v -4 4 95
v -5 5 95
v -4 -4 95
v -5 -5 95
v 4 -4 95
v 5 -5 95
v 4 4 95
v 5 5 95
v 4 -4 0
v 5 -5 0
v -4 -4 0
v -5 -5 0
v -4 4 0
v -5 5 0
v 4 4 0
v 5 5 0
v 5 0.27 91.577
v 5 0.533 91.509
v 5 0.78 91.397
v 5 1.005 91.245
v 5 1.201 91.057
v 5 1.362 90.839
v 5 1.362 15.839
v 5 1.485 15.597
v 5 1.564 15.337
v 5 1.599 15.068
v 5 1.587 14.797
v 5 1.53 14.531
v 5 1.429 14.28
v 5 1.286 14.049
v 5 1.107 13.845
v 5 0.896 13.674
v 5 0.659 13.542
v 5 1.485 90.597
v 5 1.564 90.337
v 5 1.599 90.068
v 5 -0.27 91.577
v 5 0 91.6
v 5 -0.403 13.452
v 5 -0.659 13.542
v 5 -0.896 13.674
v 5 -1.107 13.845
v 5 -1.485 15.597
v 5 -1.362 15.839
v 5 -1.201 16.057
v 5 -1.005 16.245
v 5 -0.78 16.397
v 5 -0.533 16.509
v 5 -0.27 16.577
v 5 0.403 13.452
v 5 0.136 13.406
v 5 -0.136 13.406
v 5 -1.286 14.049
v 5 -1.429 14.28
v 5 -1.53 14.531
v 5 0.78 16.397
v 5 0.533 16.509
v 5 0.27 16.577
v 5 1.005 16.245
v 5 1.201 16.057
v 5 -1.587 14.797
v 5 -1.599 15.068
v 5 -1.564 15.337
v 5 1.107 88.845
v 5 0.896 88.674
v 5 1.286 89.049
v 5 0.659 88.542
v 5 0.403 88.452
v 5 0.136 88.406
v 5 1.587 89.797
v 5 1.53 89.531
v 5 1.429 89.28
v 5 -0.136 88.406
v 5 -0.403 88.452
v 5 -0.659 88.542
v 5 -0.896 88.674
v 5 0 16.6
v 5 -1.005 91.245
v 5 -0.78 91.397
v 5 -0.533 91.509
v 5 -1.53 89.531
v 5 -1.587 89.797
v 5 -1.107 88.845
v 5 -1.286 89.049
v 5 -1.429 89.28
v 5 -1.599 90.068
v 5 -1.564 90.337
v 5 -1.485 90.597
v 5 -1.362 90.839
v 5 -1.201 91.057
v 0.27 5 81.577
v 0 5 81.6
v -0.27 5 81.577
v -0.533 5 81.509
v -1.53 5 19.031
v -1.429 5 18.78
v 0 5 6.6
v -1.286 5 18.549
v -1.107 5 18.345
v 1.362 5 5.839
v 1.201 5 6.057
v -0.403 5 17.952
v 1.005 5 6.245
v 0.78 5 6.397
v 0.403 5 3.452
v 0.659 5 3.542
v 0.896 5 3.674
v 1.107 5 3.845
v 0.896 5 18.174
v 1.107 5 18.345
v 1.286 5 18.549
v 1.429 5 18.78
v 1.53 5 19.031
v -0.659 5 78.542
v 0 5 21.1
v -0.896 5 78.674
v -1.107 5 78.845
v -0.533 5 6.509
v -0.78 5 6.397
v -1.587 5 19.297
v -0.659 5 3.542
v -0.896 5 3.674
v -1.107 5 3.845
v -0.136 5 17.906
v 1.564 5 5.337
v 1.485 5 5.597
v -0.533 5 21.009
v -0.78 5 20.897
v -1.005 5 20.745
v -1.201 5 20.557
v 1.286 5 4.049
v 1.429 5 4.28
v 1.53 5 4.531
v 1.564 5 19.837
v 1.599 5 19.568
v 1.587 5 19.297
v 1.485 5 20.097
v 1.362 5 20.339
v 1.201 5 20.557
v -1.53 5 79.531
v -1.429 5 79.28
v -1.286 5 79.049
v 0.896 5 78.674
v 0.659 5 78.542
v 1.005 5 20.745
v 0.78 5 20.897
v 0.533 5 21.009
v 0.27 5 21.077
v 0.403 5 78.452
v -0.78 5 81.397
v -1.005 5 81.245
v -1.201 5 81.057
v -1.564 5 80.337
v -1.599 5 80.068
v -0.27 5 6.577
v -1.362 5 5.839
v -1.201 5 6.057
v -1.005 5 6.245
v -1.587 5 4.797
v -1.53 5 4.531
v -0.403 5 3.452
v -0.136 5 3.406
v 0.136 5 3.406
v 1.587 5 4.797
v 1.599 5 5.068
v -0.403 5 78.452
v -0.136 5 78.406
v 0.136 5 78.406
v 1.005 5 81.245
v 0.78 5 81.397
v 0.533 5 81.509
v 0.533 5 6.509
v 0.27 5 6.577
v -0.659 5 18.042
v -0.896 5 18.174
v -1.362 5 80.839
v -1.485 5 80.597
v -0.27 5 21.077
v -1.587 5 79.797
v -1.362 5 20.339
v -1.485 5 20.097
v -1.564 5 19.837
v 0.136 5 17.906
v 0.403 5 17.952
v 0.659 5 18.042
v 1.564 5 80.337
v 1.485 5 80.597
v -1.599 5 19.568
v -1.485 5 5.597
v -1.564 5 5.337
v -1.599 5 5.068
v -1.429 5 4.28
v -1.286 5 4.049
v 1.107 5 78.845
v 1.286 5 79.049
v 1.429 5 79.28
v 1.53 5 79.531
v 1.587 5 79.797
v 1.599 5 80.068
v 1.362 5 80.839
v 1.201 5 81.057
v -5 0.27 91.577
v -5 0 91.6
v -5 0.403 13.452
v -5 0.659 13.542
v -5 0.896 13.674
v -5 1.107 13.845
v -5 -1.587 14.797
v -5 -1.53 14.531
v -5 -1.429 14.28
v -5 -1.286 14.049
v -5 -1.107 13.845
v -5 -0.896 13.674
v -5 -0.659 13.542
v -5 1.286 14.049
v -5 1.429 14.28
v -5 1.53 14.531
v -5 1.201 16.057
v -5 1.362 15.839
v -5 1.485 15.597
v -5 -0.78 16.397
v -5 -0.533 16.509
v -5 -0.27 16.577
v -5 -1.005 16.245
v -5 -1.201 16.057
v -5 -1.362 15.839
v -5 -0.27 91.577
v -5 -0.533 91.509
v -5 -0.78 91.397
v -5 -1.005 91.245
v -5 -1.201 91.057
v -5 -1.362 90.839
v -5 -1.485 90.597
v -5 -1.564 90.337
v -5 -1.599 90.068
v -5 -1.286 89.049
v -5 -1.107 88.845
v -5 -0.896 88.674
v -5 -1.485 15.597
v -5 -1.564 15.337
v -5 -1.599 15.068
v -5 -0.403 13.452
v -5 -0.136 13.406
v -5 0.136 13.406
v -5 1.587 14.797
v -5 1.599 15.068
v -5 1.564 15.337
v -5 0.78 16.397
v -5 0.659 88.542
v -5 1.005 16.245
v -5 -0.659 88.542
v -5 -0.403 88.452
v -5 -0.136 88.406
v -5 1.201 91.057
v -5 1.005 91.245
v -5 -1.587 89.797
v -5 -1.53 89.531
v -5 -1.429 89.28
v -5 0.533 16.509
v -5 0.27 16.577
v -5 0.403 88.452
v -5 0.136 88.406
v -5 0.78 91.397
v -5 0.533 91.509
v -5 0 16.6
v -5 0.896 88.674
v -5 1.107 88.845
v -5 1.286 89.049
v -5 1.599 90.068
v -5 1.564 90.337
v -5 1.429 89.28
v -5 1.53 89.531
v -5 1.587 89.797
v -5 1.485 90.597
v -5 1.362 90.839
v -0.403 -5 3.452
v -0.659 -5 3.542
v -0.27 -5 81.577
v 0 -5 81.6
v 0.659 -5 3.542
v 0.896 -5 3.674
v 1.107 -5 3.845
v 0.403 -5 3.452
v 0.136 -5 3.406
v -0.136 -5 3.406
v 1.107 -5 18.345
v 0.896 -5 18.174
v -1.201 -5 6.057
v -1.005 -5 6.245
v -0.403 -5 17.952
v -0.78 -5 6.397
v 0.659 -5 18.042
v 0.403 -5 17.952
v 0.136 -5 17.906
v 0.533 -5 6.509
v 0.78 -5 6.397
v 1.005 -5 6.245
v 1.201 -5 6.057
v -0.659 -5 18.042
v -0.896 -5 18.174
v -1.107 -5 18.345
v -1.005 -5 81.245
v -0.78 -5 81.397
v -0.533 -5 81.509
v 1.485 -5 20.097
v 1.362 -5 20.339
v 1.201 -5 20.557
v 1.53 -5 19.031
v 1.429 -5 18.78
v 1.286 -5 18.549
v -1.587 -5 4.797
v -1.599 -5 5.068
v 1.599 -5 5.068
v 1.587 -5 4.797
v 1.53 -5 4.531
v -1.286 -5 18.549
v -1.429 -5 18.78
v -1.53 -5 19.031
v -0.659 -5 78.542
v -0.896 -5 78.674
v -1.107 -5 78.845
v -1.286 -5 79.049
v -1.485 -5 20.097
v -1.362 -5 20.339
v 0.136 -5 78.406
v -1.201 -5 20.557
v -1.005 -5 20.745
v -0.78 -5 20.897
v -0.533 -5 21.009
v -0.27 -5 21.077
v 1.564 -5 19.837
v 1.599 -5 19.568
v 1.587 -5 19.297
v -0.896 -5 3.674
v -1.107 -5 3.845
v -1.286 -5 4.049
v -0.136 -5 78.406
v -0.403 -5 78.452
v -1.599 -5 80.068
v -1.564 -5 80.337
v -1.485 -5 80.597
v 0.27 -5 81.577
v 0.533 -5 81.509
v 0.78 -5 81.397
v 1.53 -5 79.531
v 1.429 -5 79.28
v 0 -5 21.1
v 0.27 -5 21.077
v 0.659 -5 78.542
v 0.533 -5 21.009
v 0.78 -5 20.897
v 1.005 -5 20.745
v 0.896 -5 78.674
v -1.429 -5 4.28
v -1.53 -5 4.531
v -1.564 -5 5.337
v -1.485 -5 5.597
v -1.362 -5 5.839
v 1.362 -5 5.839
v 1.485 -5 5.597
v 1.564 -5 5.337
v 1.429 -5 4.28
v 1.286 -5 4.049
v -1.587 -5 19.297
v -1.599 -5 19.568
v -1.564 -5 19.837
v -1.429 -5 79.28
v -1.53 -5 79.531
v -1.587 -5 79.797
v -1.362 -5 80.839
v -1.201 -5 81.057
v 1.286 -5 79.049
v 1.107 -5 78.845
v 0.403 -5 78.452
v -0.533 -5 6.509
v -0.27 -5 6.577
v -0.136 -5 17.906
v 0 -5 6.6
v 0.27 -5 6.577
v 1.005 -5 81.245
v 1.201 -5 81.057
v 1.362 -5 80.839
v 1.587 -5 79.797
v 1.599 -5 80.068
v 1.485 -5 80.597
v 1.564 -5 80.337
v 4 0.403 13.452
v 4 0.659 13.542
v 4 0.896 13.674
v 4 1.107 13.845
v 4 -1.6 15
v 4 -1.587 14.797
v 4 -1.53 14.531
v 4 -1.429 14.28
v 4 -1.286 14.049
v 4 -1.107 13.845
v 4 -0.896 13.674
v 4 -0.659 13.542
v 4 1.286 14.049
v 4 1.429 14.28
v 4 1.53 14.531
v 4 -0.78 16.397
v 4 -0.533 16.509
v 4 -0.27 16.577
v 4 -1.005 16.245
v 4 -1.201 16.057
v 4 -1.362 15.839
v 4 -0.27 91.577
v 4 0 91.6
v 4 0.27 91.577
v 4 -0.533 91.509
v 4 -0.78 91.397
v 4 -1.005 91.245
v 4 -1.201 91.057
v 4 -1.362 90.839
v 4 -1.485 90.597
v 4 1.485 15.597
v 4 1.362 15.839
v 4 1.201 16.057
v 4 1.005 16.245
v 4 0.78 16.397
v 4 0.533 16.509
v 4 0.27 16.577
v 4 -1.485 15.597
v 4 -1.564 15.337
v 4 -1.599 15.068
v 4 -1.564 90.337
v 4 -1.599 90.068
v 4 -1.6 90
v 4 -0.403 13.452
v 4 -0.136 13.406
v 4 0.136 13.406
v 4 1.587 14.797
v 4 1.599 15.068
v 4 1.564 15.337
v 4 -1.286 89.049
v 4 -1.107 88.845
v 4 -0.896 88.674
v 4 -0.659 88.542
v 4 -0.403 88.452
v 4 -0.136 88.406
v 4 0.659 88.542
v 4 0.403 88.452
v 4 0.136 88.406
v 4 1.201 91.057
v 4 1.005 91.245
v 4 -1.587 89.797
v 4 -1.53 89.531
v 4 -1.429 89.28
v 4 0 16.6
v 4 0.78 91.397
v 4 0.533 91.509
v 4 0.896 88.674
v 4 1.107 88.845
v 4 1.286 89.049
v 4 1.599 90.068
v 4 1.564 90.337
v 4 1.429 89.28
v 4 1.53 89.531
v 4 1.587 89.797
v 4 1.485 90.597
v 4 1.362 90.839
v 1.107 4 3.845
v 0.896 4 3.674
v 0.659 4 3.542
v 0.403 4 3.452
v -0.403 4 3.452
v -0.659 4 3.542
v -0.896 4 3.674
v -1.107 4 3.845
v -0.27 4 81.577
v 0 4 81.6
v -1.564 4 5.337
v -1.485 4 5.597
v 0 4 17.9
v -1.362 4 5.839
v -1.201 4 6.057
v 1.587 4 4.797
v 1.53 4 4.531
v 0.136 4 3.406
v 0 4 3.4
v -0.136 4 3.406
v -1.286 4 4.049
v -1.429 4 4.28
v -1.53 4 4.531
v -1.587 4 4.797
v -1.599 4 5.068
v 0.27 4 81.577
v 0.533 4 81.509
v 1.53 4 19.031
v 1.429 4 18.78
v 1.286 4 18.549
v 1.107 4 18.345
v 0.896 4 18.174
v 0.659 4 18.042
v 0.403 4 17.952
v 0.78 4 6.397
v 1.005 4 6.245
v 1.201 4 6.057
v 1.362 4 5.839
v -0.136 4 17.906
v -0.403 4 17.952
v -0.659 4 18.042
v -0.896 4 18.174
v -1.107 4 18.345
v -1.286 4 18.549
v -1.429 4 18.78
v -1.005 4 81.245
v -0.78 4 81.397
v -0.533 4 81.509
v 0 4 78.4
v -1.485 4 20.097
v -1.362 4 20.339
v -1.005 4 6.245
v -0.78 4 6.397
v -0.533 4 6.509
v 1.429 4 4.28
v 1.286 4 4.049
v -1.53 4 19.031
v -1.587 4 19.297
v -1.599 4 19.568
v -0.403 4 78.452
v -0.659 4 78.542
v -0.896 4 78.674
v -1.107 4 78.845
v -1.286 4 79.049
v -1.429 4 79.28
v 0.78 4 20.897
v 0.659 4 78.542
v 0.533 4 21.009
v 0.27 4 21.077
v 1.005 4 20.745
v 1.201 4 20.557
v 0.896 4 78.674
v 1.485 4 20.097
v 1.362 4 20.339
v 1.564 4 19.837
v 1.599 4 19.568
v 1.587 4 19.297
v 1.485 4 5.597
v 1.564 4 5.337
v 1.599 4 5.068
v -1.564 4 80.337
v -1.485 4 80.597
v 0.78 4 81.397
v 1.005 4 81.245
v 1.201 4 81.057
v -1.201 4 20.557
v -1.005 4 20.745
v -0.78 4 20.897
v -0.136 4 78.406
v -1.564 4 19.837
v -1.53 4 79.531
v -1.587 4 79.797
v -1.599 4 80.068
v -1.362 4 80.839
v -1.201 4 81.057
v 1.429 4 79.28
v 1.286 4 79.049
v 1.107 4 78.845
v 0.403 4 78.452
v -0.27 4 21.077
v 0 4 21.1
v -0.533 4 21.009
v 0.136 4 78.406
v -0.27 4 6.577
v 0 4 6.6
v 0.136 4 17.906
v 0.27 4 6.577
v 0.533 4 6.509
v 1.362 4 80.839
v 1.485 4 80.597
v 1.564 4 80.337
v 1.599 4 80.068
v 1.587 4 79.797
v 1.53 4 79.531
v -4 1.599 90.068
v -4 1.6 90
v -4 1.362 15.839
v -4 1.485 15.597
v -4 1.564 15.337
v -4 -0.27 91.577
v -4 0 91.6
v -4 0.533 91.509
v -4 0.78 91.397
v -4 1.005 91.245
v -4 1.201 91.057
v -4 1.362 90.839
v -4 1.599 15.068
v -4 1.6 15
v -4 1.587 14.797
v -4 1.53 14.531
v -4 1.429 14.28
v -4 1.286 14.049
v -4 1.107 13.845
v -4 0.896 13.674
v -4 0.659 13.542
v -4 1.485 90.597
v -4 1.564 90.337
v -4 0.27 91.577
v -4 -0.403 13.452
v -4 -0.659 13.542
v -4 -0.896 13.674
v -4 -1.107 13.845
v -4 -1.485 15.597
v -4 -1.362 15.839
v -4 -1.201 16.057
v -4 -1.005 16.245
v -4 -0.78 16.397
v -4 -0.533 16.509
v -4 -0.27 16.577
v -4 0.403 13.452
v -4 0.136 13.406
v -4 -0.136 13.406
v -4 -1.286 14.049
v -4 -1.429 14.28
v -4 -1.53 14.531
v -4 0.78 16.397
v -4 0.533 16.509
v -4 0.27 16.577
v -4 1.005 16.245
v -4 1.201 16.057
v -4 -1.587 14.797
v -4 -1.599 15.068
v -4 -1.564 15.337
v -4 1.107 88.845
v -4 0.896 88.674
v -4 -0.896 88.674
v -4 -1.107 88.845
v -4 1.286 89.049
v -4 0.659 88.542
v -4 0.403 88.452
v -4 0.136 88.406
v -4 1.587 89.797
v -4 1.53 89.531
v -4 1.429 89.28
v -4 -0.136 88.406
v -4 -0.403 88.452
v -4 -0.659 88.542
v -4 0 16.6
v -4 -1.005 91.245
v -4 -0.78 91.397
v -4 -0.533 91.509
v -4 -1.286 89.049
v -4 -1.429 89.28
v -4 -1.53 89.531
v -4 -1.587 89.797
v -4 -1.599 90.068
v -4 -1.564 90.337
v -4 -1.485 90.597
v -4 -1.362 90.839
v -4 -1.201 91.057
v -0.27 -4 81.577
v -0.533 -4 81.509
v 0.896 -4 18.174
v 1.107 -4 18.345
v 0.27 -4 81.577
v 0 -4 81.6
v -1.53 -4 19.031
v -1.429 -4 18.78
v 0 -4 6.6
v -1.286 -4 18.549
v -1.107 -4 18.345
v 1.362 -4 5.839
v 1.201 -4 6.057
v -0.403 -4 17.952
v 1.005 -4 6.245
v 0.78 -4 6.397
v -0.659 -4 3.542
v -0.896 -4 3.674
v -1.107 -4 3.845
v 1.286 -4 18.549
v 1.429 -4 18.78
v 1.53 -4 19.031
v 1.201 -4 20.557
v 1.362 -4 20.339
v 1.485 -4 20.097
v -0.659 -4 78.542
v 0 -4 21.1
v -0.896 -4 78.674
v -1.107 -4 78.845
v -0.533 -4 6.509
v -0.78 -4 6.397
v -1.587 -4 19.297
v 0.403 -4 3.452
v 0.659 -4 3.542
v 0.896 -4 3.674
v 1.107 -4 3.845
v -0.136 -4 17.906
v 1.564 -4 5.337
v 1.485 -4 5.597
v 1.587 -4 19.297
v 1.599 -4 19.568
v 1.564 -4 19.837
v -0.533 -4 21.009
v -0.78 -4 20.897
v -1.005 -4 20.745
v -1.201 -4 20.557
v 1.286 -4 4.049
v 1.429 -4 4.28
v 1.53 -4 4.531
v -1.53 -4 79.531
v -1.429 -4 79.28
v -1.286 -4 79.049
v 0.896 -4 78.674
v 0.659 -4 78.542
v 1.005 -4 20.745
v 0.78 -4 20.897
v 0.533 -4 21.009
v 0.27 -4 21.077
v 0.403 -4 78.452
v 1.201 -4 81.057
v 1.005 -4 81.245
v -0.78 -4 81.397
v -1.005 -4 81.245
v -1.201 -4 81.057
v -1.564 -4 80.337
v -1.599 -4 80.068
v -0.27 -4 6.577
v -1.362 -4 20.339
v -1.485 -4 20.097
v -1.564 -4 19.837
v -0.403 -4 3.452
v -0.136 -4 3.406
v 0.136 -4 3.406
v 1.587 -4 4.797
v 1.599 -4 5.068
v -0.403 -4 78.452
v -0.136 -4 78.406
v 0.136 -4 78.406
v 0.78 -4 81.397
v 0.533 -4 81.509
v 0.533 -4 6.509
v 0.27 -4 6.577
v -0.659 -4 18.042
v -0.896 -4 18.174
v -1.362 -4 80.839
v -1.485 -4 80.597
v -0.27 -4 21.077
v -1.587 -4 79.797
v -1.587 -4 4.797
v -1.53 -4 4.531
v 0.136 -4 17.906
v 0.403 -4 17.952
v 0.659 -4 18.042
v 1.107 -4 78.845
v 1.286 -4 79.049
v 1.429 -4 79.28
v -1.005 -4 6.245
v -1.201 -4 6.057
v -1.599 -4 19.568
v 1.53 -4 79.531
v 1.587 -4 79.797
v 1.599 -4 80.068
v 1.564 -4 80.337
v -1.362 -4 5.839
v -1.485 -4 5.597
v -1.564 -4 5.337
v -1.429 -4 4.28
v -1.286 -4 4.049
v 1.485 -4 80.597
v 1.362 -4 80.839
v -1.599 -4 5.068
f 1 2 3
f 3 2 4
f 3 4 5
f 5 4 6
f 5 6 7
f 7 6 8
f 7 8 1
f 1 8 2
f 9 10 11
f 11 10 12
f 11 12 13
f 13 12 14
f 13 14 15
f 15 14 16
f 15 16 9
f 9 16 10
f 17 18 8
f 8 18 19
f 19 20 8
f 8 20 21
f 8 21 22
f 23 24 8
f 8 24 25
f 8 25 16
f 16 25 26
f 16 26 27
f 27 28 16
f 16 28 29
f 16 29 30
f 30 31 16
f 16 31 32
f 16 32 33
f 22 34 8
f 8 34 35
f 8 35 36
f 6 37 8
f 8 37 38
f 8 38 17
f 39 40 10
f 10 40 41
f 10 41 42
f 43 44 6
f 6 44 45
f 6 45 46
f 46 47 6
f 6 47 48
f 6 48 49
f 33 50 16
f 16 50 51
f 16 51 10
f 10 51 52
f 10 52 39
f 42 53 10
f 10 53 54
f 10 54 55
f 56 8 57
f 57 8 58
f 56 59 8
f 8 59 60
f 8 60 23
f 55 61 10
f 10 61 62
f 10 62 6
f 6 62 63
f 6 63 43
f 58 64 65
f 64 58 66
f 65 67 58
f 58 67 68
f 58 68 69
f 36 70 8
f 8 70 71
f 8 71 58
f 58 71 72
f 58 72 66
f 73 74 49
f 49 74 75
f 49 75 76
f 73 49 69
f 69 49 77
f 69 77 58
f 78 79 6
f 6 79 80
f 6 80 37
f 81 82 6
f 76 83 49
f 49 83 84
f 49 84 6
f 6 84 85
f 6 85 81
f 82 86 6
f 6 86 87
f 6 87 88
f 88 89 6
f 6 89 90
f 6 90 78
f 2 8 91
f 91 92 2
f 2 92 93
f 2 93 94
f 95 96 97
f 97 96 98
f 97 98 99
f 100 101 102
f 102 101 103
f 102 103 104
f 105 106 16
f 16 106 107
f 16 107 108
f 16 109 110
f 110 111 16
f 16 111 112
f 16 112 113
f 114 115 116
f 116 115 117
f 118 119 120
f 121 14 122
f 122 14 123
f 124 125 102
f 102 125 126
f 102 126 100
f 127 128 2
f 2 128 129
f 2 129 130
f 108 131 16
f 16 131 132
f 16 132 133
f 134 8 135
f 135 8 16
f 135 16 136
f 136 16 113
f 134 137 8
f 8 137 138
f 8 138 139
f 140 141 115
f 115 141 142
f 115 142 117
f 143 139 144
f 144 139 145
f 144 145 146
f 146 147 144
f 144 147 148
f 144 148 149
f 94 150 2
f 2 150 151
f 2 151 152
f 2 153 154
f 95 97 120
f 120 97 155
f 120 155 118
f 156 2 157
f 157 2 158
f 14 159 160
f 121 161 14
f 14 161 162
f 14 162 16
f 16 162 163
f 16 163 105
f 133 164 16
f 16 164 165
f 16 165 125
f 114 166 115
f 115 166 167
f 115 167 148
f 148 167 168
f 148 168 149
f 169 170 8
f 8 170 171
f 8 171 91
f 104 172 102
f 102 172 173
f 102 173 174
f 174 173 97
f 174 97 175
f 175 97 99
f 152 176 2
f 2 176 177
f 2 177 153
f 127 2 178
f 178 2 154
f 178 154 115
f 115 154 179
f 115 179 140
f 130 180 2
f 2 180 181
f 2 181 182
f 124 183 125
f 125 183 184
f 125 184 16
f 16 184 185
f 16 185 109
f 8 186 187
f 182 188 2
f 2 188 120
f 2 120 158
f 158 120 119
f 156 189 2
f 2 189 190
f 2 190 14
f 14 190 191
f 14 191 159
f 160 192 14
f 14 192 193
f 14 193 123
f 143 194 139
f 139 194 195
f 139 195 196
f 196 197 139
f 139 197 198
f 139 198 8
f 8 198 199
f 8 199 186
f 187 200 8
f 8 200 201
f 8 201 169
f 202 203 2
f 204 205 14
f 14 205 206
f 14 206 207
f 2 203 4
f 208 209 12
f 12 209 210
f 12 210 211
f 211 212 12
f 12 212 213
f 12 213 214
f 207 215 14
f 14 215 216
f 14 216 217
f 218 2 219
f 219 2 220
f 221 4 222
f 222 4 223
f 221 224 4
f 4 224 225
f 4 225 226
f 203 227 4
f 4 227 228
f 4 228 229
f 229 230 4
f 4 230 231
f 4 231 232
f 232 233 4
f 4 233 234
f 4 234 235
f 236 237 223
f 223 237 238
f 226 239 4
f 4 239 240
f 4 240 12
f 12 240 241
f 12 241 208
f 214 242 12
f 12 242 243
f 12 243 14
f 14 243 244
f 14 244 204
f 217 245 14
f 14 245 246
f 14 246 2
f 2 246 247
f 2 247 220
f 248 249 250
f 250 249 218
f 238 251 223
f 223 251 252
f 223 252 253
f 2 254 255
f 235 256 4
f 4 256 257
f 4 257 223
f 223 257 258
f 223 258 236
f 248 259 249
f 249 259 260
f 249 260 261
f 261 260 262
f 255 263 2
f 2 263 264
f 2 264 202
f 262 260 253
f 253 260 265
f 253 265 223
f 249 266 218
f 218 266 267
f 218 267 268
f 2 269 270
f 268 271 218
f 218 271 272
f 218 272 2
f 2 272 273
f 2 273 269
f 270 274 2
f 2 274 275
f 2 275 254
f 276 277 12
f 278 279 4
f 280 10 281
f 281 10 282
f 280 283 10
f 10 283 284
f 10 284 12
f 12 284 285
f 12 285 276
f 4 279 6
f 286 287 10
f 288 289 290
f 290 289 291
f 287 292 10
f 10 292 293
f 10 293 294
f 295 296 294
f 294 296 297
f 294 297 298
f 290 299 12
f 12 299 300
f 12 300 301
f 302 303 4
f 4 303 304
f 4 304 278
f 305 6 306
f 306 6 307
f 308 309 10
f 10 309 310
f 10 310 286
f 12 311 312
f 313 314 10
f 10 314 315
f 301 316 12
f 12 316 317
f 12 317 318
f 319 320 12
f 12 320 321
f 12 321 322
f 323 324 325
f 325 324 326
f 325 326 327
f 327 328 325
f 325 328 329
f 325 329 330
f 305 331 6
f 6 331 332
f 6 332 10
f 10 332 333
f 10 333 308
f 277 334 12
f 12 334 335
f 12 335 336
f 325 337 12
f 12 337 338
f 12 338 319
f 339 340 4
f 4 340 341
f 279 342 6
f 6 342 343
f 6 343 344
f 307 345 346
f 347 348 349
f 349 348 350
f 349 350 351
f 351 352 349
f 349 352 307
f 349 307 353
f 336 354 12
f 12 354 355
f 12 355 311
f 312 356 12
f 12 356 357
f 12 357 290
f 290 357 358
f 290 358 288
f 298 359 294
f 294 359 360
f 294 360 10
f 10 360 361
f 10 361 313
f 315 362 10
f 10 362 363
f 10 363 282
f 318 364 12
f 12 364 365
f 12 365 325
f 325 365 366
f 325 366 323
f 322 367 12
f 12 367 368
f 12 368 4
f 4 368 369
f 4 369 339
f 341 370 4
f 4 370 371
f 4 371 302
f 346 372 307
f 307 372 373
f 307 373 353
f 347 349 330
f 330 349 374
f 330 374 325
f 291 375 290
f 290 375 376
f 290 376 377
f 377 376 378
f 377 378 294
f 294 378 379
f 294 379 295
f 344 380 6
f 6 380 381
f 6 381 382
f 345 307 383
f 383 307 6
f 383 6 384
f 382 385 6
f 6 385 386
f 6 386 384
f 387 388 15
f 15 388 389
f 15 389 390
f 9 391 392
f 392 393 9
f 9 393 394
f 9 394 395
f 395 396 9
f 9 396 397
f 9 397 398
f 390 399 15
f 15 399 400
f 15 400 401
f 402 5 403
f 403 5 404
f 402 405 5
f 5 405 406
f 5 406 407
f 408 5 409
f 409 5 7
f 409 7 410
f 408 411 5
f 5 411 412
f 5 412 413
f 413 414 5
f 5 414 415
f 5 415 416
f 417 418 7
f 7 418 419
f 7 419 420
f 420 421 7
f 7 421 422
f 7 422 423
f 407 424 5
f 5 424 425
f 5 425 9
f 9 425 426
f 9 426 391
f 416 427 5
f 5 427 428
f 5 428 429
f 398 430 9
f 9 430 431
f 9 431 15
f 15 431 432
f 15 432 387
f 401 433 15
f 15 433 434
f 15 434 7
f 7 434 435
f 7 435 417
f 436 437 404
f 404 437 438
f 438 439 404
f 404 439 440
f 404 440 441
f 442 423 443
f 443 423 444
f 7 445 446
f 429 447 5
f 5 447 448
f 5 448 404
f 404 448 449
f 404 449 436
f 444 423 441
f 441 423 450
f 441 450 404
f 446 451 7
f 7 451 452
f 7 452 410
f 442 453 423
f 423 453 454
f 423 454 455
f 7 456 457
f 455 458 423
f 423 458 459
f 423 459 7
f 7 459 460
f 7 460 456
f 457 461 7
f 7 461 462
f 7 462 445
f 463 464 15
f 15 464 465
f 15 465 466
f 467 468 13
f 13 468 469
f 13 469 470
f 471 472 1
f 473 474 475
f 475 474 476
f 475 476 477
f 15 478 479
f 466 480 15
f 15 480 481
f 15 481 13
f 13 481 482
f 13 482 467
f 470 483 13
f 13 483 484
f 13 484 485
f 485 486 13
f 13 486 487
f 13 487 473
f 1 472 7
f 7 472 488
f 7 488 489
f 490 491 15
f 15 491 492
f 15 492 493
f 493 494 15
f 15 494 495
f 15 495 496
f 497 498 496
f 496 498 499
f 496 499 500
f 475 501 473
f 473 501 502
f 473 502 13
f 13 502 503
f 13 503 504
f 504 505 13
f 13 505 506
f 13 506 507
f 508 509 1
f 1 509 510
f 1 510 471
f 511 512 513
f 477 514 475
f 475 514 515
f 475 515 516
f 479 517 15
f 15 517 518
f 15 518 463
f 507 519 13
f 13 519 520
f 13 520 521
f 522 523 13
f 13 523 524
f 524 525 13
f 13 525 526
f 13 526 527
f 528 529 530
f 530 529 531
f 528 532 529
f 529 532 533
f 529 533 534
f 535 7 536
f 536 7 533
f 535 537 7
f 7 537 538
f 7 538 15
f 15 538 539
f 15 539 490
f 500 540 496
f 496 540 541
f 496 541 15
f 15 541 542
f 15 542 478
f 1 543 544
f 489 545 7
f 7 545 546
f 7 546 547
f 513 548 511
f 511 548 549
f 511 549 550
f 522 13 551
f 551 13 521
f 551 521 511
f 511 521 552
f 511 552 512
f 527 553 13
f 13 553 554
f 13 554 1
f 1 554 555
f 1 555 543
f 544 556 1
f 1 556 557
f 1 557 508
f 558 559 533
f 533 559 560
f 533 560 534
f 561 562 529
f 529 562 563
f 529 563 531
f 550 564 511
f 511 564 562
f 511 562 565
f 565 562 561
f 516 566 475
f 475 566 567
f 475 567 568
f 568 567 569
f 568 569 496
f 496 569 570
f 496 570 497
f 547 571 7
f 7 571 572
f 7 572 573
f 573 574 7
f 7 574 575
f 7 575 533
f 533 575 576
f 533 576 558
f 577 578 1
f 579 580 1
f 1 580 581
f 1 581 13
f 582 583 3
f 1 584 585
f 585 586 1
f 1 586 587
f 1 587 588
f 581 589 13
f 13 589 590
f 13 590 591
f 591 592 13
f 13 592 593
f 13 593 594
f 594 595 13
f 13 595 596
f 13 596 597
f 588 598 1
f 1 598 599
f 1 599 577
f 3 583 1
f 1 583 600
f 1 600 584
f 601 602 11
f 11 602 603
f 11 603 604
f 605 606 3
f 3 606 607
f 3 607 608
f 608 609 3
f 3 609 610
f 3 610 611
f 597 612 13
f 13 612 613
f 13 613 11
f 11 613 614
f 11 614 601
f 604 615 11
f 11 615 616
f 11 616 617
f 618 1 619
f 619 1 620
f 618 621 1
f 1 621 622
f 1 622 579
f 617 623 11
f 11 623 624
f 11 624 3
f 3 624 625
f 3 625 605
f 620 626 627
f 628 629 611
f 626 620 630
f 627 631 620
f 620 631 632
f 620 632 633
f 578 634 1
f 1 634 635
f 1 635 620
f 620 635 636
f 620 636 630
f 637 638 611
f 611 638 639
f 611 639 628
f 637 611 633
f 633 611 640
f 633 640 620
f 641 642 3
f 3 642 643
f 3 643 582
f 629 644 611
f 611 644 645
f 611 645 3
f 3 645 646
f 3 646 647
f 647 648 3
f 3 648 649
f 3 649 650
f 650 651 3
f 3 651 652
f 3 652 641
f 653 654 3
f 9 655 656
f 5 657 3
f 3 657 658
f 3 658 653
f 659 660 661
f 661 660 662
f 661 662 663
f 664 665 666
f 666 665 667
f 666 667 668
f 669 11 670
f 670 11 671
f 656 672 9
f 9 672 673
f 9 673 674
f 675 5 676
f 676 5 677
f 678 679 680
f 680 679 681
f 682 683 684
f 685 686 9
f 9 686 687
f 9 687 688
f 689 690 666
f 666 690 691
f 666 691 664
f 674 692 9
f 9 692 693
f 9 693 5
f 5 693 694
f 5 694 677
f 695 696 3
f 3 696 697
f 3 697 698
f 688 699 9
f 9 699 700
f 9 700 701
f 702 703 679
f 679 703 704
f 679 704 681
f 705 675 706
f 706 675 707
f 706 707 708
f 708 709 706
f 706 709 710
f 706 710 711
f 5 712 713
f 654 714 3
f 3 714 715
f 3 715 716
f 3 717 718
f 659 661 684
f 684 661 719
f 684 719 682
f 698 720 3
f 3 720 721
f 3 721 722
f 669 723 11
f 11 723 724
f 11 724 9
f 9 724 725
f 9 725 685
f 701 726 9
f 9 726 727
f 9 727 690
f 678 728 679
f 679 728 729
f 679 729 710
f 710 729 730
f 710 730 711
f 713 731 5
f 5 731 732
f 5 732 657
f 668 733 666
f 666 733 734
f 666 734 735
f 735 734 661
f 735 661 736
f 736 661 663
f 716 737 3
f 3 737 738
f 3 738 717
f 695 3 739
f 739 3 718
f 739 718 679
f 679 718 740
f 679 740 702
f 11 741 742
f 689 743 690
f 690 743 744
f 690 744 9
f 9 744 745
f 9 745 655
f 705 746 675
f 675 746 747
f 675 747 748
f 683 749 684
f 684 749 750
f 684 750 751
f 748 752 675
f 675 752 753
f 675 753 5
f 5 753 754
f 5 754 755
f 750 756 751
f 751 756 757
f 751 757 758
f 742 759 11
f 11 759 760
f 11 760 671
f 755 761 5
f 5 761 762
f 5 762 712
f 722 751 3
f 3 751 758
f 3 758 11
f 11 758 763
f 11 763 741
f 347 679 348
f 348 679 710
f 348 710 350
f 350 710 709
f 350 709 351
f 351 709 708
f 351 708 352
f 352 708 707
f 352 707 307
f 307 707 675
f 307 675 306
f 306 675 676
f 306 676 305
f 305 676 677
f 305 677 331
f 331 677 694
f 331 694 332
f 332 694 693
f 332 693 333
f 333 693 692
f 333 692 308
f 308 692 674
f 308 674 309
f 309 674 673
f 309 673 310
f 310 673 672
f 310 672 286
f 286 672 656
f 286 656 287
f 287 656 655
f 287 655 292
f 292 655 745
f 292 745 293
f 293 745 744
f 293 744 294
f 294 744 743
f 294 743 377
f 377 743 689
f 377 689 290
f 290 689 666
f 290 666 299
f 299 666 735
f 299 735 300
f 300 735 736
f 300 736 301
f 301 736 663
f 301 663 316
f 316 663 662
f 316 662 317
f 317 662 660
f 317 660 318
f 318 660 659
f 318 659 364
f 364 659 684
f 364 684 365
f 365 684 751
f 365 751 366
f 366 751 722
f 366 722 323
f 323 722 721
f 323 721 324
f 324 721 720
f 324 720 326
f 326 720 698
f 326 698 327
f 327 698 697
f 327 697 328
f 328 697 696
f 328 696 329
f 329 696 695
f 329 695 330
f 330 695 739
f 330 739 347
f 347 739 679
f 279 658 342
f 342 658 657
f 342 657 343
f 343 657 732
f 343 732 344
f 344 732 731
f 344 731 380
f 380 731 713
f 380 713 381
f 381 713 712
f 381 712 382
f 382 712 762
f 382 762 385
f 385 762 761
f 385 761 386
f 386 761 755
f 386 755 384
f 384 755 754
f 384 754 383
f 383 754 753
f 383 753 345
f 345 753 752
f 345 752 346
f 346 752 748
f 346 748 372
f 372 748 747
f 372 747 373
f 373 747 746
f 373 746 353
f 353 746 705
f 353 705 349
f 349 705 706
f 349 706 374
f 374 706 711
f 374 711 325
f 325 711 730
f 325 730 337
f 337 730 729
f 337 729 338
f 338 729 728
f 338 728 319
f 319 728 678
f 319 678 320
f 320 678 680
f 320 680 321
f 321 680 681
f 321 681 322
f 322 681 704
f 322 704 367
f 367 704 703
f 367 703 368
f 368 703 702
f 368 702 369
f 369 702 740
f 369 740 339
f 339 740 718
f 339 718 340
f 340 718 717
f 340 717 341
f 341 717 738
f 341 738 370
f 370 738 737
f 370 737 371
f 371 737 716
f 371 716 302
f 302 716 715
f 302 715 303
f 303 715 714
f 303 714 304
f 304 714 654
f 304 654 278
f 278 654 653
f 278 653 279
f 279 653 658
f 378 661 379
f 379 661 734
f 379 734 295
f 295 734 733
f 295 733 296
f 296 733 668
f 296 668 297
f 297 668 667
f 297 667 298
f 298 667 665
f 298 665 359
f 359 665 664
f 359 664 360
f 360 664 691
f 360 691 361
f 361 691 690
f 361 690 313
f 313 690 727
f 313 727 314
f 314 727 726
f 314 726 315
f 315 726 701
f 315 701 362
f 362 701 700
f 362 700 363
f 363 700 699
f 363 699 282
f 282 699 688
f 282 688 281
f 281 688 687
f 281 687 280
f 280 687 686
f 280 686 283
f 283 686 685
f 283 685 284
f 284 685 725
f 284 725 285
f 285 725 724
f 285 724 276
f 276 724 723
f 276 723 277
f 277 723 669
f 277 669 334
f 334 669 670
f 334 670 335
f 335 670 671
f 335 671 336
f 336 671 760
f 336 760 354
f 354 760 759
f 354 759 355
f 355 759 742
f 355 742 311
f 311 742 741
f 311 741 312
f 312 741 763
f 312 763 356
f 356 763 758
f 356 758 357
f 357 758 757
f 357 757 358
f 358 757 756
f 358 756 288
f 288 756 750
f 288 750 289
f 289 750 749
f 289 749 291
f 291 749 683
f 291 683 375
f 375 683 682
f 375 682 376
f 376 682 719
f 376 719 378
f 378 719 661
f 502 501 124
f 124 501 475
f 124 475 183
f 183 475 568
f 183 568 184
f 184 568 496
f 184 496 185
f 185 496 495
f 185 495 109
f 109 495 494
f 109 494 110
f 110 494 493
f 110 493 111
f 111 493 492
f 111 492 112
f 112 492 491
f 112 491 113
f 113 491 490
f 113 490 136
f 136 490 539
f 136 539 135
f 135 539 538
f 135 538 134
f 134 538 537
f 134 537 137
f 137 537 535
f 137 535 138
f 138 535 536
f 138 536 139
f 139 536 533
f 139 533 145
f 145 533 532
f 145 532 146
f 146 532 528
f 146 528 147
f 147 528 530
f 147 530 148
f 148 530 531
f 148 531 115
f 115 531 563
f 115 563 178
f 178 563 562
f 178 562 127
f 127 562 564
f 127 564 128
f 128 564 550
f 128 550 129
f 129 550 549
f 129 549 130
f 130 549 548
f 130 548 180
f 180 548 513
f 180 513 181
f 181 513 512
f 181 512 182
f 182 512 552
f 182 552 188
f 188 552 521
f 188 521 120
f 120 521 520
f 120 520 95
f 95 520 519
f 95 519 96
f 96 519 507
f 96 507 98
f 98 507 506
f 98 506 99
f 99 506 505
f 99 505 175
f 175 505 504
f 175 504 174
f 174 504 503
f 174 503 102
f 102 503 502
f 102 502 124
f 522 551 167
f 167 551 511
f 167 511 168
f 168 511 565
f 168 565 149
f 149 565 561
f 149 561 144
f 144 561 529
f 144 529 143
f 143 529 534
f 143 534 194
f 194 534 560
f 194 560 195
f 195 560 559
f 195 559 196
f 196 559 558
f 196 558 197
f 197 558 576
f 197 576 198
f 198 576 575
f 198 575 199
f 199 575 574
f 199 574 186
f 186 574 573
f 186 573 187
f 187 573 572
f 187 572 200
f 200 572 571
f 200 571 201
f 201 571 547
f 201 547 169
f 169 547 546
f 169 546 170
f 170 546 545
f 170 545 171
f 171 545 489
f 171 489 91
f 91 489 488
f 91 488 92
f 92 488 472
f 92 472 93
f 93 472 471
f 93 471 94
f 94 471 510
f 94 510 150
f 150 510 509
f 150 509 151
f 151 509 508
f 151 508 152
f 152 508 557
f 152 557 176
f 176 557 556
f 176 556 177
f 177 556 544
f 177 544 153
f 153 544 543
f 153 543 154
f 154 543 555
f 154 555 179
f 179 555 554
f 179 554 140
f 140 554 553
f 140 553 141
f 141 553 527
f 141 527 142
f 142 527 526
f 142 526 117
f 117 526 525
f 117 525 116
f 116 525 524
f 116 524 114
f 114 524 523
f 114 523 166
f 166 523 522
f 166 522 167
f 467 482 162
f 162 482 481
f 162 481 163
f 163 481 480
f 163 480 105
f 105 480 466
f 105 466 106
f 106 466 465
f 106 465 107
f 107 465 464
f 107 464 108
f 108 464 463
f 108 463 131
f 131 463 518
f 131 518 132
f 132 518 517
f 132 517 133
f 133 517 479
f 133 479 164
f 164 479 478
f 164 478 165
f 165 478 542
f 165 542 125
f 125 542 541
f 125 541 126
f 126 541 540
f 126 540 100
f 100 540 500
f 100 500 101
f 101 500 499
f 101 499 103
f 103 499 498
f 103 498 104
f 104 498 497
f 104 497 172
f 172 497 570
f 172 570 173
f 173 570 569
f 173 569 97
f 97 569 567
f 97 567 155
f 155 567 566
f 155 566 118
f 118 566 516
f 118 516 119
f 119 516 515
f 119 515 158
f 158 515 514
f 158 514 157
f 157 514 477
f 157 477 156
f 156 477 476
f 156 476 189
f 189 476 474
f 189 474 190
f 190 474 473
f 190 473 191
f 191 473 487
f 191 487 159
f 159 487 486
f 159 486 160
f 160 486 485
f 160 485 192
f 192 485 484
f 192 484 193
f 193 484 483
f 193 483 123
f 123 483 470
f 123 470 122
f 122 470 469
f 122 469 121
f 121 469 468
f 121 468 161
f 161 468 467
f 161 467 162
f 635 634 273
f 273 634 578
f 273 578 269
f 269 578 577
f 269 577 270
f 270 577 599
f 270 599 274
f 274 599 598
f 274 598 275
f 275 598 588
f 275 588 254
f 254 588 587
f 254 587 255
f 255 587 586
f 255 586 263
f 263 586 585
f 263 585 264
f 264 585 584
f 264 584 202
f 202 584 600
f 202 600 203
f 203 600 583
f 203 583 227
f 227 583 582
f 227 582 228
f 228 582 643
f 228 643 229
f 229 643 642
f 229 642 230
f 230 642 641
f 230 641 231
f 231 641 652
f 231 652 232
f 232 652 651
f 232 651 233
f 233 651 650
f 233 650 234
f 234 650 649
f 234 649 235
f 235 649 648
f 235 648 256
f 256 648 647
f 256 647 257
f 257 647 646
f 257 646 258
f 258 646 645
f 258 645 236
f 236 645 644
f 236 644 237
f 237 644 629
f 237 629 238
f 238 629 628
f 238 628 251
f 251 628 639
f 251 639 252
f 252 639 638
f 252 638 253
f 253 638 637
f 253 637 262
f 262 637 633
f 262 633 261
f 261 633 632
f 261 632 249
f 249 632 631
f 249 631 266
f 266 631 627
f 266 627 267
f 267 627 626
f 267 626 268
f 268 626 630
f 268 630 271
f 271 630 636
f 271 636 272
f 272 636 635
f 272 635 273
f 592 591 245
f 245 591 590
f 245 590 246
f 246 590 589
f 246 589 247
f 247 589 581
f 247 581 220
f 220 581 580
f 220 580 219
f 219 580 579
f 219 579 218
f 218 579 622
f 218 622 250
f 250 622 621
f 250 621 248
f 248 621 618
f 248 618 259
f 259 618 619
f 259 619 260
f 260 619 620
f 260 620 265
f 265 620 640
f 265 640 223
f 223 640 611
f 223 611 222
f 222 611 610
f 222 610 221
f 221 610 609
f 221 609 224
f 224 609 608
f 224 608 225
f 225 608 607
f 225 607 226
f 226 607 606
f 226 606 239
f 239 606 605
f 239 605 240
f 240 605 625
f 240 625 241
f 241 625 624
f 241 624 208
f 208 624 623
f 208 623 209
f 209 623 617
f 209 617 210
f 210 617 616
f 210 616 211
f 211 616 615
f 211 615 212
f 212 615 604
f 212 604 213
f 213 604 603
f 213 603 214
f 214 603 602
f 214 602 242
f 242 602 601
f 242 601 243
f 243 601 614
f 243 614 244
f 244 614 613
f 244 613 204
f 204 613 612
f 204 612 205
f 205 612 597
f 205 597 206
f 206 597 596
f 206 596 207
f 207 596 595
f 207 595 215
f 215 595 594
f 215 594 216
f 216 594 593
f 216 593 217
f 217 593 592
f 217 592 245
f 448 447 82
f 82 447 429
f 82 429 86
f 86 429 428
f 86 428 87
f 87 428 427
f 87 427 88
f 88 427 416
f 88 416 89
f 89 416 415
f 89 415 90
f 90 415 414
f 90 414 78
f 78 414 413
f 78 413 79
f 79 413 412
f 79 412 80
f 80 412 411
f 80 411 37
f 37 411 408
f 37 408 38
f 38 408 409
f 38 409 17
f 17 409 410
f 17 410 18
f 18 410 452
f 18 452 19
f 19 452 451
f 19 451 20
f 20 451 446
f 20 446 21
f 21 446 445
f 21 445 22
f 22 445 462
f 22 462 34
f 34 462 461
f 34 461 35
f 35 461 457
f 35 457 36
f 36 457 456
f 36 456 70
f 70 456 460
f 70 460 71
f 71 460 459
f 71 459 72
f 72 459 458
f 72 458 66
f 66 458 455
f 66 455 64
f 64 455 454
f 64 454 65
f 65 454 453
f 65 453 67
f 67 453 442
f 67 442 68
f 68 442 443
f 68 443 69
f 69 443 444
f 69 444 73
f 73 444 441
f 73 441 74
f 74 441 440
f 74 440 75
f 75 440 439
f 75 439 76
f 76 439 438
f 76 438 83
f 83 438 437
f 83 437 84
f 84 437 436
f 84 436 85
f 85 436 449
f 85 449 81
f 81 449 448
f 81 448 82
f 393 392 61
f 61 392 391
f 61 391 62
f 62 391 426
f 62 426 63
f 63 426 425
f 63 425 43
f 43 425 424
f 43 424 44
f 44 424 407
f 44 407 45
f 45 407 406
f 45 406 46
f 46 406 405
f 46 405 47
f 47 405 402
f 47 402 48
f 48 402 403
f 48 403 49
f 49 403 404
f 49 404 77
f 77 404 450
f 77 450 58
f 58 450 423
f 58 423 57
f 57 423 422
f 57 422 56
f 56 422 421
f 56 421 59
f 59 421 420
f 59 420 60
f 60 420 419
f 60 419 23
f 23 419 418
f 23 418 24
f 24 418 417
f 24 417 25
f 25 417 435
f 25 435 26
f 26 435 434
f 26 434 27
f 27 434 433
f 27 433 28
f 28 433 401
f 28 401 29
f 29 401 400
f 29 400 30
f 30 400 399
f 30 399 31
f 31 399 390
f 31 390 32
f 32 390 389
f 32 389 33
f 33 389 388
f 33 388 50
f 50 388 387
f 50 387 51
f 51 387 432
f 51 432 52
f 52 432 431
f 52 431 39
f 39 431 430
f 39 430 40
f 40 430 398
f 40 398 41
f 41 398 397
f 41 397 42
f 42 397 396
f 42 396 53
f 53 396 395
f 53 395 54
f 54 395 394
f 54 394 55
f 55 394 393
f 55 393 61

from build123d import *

# Parameters (mm, degrees)
SKETCH_1_W          = 10
SKETCH_1_H          = 10
SKETCH_1_W_2        = 8
SKETCH_1_H_2        = 8
EXTRUDE_1_DEPTH     = 95
SKETCH_2_R          = 1.6
CUT_EXTRUDE_1_DEPTH = 96.655632349
SKETCH_3_R          = 1.6
CUT_EXTRUDE_2_DEPTH = 96.655632349


with BuildPart() as part:
    # ｽｹｯﾁ1 → ﾎﾞｽ - 押し出し1 (new body)
    with BuildSketch(Plane.XY):
        Rectangle(SKETCH_1_W, SKETCH_1_H)
        Rectangle(SKETCH_1_W_2, SKETCH_1_H_2, mode=Mode.SUBTRACT)
    extrude(amount=EXTRUDE_1_DEPTH)

    # ｽｹｯﾁ2 → ｶｯﾄ - 押し出し1 (cut, through all)
    with BuildSketch(Plane(origin=(0, 5, 0), x_dir=(1, 0, 0), z_dir=(0, 1, 0))):
        with Locations(Location((0, -5, 0), (0, 0, 270))):
            Circle(SKETCH_2_R)
        with Locations(Location((0, -80, 0), (0, 0, 270))):
            Circle(SKETCH_2_R)
        with Locations(Location((0, -19.5, 0), (0, 0, 270))):
            Circle(SKETCH_2_R)
    extrude(amount=-CUT_EXTRUDE_1_DEPTH, mode=Mode.SUBTRACT)

    # ｽｹｯﾁ3 → ｶｯﾄ - 押し出し2 (cut, through all)
    with BuildSketch(Plane.ZY.offset(5)):
        with Locations((15, 0)):
            Circle(SKETCH_3_R)
        with Locations((90, 0)):
            Circle(SKETCH_3_R)
    extrude(amount=-CUT_EXTRUDE_2_DEPTH, mode=Mode.SUBTRACT)


solid = part.part
